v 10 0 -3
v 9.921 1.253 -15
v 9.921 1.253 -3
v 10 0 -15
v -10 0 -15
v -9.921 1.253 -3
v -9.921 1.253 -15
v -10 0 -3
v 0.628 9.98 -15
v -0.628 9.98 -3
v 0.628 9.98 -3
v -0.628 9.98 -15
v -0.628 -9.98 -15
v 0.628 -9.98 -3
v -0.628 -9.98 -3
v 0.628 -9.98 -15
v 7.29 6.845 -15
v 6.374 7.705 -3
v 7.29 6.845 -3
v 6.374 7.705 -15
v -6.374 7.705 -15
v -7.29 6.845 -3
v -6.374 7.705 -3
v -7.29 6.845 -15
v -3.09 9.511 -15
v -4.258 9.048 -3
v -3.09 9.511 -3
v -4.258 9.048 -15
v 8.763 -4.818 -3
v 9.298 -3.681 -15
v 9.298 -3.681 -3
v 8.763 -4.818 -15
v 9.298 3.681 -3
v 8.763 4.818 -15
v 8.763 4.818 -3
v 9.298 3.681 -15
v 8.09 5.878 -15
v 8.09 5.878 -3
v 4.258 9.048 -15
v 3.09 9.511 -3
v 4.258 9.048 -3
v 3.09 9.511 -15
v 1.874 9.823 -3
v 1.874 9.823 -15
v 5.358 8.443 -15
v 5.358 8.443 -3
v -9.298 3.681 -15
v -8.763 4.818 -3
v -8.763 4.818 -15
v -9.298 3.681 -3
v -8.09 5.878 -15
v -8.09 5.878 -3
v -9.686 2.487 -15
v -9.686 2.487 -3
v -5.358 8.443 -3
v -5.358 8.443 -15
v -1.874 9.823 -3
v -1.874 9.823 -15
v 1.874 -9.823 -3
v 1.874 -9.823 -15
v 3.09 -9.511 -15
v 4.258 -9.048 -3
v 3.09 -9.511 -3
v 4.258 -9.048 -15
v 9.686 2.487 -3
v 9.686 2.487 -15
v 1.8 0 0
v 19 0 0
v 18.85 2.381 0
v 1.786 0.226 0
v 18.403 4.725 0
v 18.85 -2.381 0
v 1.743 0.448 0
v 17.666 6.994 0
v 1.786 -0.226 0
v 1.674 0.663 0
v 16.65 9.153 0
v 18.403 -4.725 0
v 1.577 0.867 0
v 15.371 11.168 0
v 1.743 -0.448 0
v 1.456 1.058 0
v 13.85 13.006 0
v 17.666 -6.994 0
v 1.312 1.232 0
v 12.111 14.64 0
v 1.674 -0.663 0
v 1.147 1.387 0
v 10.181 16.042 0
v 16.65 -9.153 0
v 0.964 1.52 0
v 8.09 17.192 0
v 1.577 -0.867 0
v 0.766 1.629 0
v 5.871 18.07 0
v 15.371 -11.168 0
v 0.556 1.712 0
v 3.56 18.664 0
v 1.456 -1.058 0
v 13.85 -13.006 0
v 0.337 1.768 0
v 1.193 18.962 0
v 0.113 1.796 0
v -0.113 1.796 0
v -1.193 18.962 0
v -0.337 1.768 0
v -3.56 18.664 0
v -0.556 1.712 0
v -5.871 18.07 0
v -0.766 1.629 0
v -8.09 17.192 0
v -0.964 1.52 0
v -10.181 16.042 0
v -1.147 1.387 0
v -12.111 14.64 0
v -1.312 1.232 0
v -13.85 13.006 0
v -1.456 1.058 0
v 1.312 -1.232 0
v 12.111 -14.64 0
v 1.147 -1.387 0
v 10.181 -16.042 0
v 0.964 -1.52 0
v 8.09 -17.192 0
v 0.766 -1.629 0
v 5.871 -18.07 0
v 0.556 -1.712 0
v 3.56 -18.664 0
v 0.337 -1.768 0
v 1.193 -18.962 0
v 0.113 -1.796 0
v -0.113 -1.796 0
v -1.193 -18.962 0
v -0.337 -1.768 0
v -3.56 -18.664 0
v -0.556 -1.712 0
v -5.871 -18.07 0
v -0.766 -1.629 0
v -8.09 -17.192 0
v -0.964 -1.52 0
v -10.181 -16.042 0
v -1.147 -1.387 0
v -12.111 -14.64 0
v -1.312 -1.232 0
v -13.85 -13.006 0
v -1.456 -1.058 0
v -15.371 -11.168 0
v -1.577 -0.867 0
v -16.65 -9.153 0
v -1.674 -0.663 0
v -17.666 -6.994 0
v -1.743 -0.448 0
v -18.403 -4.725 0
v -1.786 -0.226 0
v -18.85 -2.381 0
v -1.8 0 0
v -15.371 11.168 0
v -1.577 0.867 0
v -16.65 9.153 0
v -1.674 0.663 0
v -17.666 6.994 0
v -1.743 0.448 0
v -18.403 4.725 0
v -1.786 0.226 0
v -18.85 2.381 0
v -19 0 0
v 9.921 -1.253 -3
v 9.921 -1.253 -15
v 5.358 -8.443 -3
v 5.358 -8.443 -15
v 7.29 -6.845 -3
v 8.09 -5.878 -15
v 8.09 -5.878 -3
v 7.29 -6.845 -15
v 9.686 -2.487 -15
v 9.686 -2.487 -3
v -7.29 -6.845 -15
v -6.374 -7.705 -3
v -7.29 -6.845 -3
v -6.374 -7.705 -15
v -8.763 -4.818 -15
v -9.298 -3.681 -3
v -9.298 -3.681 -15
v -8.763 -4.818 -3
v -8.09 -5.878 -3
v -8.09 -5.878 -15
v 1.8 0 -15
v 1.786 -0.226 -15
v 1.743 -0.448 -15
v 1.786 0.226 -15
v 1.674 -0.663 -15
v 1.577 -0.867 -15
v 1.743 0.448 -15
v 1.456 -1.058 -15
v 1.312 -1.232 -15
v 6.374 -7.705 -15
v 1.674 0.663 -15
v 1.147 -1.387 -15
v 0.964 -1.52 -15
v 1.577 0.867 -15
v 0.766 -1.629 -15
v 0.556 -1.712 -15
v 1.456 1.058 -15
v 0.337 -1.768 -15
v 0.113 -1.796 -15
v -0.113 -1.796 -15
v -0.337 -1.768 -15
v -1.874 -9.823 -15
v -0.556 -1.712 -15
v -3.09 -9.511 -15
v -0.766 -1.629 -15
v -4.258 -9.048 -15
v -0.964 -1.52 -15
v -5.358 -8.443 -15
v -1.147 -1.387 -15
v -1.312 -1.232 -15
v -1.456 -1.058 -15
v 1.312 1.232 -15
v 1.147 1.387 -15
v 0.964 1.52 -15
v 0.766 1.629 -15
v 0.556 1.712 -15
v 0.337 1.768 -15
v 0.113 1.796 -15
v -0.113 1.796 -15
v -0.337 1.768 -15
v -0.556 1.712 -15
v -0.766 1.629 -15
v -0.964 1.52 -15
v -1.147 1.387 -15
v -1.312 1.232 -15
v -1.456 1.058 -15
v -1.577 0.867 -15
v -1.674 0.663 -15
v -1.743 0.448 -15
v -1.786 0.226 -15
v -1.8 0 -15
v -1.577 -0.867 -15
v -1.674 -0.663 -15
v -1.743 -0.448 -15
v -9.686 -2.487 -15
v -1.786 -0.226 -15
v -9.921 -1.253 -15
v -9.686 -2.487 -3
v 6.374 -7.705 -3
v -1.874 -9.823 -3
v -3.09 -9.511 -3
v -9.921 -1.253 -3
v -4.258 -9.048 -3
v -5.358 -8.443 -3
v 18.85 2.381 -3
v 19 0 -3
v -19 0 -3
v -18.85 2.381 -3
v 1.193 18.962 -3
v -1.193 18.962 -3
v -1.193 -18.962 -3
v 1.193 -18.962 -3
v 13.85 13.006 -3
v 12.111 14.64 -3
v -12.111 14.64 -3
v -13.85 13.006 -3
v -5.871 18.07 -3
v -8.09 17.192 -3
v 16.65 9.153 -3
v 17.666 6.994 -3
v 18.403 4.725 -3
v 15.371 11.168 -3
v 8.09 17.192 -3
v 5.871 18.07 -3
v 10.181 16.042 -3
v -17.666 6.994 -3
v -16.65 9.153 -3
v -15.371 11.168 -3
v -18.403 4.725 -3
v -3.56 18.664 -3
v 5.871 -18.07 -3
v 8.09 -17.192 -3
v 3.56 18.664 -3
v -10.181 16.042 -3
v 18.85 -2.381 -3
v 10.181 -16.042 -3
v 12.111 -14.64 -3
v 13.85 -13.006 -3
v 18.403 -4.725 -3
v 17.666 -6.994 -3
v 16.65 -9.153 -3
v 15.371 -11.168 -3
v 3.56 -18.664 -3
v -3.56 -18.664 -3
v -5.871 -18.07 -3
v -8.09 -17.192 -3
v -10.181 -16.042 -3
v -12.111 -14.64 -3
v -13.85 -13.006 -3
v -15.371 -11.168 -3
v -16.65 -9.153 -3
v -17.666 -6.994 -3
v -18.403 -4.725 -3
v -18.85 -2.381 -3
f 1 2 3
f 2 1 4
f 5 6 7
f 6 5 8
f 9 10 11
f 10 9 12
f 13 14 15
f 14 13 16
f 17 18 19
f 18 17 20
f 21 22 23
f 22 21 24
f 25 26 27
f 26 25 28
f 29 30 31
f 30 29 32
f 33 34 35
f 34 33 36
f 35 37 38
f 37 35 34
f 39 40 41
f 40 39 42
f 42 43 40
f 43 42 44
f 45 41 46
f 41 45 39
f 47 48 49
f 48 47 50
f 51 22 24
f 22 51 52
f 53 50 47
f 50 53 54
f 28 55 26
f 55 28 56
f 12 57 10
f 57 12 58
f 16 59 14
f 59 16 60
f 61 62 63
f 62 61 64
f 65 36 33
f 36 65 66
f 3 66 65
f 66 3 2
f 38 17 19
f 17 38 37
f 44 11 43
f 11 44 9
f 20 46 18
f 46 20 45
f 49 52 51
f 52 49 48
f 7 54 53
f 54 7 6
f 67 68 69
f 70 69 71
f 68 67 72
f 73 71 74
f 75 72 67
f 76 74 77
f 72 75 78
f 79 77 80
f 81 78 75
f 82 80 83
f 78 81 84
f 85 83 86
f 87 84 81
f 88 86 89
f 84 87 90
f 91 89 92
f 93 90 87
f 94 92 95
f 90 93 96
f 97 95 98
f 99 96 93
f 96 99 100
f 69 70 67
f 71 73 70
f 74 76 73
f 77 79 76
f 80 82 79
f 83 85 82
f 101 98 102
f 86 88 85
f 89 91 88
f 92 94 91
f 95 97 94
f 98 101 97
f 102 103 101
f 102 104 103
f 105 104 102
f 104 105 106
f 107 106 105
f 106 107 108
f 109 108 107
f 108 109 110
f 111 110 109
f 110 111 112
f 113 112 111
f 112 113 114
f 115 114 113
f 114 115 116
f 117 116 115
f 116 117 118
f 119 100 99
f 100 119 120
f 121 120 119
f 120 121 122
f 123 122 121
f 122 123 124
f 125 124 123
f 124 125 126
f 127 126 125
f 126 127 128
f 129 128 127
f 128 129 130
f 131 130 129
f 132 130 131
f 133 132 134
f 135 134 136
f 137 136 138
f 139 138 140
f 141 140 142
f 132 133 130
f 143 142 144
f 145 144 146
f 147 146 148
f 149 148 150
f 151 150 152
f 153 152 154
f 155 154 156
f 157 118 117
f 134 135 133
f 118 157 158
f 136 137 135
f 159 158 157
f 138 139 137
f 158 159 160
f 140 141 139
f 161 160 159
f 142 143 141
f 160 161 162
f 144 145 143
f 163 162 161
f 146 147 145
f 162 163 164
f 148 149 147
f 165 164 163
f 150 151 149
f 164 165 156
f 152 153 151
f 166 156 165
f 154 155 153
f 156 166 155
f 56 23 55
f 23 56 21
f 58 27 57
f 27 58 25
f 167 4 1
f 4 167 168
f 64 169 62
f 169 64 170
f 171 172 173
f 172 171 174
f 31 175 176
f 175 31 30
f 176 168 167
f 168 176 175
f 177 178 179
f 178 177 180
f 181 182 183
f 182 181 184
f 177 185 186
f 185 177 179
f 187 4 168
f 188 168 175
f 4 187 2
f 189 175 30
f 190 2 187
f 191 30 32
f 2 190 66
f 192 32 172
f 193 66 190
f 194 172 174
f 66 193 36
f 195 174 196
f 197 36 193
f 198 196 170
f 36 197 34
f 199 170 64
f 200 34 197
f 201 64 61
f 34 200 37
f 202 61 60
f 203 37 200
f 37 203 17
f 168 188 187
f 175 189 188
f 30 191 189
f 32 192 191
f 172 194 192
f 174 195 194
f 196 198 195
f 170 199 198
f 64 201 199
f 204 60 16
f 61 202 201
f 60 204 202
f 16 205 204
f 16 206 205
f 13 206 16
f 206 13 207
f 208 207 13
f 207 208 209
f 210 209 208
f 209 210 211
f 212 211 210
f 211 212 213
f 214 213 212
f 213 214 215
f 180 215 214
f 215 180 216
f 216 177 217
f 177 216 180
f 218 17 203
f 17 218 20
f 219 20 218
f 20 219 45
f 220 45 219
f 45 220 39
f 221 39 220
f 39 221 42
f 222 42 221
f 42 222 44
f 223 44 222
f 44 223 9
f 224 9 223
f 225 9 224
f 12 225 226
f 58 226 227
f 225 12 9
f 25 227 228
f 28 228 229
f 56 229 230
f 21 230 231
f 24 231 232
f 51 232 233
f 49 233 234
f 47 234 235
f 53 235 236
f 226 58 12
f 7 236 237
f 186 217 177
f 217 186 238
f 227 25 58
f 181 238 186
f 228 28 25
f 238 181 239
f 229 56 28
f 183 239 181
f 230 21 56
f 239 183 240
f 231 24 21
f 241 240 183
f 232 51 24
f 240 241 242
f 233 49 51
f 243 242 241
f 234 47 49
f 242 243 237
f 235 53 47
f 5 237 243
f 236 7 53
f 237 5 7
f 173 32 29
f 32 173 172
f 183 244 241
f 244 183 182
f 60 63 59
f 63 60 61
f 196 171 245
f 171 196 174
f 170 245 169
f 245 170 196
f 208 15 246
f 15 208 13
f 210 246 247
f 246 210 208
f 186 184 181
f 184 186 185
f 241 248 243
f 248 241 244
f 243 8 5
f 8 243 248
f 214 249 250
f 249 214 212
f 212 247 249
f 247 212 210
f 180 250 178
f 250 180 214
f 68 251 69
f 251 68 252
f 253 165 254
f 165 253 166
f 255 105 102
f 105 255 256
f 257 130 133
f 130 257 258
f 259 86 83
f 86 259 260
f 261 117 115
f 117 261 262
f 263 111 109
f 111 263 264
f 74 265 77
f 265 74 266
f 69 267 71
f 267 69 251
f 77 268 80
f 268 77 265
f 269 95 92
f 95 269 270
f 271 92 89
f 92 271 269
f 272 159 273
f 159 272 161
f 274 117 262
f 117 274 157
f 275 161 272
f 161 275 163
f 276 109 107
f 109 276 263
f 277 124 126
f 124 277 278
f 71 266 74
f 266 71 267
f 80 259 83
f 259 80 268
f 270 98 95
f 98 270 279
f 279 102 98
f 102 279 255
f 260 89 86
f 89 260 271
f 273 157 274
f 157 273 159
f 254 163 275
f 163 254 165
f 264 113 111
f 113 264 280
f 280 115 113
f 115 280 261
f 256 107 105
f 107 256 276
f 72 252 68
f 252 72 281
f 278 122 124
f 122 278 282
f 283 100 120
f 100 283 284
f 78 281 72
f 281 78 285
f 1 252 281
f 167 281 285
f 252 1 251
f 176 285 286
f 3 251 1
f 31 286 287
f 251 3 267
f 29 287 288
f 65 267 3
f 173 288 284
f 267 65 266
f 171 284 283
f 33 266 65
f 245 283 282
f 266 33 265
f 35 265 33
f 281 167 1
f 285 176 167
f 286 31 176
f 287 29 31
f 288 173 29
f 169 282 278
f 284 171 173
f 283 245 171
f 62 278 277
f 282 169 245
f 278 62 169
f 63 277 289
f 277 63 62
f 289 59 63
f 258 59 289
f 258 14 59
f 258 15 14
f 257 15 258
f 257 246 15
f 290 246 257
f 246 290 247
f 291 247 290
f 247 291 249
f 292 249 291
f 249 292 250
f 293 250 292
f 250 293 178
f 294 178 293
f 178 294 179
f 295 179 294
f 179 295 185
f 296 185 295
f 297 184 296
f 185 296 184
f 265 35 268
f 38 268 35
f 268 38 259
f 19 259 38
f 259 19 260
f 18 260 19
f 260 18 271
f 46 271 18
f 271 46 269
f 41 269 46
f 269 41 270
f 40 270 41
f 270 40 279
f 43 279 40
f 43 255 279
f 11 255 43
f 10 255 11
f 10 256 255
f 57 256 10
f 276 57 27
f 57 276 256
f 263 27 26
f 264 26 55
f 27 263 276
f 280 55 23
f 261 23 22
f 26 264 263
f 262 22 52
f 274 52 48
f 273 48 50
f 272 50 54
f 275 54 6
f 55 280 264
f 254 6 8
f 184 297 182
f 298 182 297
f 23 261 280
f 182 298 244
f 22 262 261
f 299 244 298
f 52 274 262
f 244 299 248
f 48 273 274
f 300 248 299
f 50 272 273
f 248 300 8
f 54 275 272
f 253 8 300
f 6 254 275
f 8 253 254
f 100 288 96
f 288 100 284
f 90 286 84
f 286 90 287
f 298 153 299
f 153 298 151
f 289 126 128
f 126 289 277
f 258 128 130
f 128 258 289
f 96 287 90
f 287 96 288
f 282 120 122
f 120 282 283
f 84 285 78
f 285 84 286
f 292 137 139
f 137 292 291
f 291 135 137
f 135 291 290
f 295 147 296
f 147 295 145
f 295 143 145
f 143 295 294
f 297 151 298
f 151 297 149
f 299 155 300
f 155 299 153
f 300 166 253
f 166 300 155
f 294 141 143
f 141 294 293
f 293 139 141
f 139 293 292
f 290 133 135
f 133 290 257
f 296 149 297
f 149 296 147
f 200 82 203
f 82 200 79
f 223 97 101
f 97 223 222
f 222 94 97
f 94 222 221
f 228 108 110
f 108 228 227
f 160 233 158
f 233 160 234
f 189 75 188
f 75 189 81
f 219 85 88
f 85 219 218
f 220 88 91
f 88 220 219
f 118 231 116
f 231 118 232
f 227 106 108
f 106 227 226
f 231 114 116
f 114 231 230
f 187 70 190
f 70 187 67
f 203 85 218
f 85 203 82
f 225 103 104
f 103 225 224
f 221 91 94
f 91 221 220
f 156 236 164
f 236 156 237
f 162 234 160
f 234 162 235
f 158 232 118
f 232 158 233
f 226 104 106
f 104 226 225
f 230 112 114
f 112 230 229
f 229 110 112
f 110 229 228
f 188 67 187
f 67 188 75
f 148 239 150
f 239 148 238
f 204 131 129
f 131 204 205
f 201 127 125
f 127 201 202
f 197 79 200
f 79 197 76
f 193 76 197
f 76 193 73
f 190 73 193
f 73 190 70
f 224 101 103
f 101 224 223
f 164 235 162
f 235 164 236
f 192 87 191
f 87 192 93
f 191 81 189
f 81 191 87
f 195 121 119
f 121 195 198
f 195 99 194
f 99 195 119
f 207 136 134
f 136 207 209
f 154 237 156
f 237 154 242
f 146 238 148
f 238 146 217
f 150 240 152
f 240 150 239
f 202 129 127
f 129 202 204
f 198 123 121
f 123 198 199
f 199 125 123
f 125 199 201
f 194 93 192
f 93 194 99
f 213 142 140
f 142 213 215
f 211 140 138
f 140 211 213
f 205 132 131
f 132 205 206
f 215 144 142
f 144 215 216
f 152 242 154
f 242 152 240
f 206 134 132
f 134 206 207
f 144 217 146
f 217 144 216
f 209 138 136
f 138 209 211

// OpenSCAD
$fn = 50;


difference() {
	union() {
		translate(v = [0, 0, -15.0000000000]) {
			cylinder(h = 15, r = 10.0000000000);
		}
		translate(v = [0, 0, -3.0000000000]) {
			cylinder(h = 3, r = 19.0000000000);
		}
	}
	union() {
		#translate(v = [0, 0, -15]) {
			cylinder(h = 15, r = 1.8000000000);
		}
	}
}
